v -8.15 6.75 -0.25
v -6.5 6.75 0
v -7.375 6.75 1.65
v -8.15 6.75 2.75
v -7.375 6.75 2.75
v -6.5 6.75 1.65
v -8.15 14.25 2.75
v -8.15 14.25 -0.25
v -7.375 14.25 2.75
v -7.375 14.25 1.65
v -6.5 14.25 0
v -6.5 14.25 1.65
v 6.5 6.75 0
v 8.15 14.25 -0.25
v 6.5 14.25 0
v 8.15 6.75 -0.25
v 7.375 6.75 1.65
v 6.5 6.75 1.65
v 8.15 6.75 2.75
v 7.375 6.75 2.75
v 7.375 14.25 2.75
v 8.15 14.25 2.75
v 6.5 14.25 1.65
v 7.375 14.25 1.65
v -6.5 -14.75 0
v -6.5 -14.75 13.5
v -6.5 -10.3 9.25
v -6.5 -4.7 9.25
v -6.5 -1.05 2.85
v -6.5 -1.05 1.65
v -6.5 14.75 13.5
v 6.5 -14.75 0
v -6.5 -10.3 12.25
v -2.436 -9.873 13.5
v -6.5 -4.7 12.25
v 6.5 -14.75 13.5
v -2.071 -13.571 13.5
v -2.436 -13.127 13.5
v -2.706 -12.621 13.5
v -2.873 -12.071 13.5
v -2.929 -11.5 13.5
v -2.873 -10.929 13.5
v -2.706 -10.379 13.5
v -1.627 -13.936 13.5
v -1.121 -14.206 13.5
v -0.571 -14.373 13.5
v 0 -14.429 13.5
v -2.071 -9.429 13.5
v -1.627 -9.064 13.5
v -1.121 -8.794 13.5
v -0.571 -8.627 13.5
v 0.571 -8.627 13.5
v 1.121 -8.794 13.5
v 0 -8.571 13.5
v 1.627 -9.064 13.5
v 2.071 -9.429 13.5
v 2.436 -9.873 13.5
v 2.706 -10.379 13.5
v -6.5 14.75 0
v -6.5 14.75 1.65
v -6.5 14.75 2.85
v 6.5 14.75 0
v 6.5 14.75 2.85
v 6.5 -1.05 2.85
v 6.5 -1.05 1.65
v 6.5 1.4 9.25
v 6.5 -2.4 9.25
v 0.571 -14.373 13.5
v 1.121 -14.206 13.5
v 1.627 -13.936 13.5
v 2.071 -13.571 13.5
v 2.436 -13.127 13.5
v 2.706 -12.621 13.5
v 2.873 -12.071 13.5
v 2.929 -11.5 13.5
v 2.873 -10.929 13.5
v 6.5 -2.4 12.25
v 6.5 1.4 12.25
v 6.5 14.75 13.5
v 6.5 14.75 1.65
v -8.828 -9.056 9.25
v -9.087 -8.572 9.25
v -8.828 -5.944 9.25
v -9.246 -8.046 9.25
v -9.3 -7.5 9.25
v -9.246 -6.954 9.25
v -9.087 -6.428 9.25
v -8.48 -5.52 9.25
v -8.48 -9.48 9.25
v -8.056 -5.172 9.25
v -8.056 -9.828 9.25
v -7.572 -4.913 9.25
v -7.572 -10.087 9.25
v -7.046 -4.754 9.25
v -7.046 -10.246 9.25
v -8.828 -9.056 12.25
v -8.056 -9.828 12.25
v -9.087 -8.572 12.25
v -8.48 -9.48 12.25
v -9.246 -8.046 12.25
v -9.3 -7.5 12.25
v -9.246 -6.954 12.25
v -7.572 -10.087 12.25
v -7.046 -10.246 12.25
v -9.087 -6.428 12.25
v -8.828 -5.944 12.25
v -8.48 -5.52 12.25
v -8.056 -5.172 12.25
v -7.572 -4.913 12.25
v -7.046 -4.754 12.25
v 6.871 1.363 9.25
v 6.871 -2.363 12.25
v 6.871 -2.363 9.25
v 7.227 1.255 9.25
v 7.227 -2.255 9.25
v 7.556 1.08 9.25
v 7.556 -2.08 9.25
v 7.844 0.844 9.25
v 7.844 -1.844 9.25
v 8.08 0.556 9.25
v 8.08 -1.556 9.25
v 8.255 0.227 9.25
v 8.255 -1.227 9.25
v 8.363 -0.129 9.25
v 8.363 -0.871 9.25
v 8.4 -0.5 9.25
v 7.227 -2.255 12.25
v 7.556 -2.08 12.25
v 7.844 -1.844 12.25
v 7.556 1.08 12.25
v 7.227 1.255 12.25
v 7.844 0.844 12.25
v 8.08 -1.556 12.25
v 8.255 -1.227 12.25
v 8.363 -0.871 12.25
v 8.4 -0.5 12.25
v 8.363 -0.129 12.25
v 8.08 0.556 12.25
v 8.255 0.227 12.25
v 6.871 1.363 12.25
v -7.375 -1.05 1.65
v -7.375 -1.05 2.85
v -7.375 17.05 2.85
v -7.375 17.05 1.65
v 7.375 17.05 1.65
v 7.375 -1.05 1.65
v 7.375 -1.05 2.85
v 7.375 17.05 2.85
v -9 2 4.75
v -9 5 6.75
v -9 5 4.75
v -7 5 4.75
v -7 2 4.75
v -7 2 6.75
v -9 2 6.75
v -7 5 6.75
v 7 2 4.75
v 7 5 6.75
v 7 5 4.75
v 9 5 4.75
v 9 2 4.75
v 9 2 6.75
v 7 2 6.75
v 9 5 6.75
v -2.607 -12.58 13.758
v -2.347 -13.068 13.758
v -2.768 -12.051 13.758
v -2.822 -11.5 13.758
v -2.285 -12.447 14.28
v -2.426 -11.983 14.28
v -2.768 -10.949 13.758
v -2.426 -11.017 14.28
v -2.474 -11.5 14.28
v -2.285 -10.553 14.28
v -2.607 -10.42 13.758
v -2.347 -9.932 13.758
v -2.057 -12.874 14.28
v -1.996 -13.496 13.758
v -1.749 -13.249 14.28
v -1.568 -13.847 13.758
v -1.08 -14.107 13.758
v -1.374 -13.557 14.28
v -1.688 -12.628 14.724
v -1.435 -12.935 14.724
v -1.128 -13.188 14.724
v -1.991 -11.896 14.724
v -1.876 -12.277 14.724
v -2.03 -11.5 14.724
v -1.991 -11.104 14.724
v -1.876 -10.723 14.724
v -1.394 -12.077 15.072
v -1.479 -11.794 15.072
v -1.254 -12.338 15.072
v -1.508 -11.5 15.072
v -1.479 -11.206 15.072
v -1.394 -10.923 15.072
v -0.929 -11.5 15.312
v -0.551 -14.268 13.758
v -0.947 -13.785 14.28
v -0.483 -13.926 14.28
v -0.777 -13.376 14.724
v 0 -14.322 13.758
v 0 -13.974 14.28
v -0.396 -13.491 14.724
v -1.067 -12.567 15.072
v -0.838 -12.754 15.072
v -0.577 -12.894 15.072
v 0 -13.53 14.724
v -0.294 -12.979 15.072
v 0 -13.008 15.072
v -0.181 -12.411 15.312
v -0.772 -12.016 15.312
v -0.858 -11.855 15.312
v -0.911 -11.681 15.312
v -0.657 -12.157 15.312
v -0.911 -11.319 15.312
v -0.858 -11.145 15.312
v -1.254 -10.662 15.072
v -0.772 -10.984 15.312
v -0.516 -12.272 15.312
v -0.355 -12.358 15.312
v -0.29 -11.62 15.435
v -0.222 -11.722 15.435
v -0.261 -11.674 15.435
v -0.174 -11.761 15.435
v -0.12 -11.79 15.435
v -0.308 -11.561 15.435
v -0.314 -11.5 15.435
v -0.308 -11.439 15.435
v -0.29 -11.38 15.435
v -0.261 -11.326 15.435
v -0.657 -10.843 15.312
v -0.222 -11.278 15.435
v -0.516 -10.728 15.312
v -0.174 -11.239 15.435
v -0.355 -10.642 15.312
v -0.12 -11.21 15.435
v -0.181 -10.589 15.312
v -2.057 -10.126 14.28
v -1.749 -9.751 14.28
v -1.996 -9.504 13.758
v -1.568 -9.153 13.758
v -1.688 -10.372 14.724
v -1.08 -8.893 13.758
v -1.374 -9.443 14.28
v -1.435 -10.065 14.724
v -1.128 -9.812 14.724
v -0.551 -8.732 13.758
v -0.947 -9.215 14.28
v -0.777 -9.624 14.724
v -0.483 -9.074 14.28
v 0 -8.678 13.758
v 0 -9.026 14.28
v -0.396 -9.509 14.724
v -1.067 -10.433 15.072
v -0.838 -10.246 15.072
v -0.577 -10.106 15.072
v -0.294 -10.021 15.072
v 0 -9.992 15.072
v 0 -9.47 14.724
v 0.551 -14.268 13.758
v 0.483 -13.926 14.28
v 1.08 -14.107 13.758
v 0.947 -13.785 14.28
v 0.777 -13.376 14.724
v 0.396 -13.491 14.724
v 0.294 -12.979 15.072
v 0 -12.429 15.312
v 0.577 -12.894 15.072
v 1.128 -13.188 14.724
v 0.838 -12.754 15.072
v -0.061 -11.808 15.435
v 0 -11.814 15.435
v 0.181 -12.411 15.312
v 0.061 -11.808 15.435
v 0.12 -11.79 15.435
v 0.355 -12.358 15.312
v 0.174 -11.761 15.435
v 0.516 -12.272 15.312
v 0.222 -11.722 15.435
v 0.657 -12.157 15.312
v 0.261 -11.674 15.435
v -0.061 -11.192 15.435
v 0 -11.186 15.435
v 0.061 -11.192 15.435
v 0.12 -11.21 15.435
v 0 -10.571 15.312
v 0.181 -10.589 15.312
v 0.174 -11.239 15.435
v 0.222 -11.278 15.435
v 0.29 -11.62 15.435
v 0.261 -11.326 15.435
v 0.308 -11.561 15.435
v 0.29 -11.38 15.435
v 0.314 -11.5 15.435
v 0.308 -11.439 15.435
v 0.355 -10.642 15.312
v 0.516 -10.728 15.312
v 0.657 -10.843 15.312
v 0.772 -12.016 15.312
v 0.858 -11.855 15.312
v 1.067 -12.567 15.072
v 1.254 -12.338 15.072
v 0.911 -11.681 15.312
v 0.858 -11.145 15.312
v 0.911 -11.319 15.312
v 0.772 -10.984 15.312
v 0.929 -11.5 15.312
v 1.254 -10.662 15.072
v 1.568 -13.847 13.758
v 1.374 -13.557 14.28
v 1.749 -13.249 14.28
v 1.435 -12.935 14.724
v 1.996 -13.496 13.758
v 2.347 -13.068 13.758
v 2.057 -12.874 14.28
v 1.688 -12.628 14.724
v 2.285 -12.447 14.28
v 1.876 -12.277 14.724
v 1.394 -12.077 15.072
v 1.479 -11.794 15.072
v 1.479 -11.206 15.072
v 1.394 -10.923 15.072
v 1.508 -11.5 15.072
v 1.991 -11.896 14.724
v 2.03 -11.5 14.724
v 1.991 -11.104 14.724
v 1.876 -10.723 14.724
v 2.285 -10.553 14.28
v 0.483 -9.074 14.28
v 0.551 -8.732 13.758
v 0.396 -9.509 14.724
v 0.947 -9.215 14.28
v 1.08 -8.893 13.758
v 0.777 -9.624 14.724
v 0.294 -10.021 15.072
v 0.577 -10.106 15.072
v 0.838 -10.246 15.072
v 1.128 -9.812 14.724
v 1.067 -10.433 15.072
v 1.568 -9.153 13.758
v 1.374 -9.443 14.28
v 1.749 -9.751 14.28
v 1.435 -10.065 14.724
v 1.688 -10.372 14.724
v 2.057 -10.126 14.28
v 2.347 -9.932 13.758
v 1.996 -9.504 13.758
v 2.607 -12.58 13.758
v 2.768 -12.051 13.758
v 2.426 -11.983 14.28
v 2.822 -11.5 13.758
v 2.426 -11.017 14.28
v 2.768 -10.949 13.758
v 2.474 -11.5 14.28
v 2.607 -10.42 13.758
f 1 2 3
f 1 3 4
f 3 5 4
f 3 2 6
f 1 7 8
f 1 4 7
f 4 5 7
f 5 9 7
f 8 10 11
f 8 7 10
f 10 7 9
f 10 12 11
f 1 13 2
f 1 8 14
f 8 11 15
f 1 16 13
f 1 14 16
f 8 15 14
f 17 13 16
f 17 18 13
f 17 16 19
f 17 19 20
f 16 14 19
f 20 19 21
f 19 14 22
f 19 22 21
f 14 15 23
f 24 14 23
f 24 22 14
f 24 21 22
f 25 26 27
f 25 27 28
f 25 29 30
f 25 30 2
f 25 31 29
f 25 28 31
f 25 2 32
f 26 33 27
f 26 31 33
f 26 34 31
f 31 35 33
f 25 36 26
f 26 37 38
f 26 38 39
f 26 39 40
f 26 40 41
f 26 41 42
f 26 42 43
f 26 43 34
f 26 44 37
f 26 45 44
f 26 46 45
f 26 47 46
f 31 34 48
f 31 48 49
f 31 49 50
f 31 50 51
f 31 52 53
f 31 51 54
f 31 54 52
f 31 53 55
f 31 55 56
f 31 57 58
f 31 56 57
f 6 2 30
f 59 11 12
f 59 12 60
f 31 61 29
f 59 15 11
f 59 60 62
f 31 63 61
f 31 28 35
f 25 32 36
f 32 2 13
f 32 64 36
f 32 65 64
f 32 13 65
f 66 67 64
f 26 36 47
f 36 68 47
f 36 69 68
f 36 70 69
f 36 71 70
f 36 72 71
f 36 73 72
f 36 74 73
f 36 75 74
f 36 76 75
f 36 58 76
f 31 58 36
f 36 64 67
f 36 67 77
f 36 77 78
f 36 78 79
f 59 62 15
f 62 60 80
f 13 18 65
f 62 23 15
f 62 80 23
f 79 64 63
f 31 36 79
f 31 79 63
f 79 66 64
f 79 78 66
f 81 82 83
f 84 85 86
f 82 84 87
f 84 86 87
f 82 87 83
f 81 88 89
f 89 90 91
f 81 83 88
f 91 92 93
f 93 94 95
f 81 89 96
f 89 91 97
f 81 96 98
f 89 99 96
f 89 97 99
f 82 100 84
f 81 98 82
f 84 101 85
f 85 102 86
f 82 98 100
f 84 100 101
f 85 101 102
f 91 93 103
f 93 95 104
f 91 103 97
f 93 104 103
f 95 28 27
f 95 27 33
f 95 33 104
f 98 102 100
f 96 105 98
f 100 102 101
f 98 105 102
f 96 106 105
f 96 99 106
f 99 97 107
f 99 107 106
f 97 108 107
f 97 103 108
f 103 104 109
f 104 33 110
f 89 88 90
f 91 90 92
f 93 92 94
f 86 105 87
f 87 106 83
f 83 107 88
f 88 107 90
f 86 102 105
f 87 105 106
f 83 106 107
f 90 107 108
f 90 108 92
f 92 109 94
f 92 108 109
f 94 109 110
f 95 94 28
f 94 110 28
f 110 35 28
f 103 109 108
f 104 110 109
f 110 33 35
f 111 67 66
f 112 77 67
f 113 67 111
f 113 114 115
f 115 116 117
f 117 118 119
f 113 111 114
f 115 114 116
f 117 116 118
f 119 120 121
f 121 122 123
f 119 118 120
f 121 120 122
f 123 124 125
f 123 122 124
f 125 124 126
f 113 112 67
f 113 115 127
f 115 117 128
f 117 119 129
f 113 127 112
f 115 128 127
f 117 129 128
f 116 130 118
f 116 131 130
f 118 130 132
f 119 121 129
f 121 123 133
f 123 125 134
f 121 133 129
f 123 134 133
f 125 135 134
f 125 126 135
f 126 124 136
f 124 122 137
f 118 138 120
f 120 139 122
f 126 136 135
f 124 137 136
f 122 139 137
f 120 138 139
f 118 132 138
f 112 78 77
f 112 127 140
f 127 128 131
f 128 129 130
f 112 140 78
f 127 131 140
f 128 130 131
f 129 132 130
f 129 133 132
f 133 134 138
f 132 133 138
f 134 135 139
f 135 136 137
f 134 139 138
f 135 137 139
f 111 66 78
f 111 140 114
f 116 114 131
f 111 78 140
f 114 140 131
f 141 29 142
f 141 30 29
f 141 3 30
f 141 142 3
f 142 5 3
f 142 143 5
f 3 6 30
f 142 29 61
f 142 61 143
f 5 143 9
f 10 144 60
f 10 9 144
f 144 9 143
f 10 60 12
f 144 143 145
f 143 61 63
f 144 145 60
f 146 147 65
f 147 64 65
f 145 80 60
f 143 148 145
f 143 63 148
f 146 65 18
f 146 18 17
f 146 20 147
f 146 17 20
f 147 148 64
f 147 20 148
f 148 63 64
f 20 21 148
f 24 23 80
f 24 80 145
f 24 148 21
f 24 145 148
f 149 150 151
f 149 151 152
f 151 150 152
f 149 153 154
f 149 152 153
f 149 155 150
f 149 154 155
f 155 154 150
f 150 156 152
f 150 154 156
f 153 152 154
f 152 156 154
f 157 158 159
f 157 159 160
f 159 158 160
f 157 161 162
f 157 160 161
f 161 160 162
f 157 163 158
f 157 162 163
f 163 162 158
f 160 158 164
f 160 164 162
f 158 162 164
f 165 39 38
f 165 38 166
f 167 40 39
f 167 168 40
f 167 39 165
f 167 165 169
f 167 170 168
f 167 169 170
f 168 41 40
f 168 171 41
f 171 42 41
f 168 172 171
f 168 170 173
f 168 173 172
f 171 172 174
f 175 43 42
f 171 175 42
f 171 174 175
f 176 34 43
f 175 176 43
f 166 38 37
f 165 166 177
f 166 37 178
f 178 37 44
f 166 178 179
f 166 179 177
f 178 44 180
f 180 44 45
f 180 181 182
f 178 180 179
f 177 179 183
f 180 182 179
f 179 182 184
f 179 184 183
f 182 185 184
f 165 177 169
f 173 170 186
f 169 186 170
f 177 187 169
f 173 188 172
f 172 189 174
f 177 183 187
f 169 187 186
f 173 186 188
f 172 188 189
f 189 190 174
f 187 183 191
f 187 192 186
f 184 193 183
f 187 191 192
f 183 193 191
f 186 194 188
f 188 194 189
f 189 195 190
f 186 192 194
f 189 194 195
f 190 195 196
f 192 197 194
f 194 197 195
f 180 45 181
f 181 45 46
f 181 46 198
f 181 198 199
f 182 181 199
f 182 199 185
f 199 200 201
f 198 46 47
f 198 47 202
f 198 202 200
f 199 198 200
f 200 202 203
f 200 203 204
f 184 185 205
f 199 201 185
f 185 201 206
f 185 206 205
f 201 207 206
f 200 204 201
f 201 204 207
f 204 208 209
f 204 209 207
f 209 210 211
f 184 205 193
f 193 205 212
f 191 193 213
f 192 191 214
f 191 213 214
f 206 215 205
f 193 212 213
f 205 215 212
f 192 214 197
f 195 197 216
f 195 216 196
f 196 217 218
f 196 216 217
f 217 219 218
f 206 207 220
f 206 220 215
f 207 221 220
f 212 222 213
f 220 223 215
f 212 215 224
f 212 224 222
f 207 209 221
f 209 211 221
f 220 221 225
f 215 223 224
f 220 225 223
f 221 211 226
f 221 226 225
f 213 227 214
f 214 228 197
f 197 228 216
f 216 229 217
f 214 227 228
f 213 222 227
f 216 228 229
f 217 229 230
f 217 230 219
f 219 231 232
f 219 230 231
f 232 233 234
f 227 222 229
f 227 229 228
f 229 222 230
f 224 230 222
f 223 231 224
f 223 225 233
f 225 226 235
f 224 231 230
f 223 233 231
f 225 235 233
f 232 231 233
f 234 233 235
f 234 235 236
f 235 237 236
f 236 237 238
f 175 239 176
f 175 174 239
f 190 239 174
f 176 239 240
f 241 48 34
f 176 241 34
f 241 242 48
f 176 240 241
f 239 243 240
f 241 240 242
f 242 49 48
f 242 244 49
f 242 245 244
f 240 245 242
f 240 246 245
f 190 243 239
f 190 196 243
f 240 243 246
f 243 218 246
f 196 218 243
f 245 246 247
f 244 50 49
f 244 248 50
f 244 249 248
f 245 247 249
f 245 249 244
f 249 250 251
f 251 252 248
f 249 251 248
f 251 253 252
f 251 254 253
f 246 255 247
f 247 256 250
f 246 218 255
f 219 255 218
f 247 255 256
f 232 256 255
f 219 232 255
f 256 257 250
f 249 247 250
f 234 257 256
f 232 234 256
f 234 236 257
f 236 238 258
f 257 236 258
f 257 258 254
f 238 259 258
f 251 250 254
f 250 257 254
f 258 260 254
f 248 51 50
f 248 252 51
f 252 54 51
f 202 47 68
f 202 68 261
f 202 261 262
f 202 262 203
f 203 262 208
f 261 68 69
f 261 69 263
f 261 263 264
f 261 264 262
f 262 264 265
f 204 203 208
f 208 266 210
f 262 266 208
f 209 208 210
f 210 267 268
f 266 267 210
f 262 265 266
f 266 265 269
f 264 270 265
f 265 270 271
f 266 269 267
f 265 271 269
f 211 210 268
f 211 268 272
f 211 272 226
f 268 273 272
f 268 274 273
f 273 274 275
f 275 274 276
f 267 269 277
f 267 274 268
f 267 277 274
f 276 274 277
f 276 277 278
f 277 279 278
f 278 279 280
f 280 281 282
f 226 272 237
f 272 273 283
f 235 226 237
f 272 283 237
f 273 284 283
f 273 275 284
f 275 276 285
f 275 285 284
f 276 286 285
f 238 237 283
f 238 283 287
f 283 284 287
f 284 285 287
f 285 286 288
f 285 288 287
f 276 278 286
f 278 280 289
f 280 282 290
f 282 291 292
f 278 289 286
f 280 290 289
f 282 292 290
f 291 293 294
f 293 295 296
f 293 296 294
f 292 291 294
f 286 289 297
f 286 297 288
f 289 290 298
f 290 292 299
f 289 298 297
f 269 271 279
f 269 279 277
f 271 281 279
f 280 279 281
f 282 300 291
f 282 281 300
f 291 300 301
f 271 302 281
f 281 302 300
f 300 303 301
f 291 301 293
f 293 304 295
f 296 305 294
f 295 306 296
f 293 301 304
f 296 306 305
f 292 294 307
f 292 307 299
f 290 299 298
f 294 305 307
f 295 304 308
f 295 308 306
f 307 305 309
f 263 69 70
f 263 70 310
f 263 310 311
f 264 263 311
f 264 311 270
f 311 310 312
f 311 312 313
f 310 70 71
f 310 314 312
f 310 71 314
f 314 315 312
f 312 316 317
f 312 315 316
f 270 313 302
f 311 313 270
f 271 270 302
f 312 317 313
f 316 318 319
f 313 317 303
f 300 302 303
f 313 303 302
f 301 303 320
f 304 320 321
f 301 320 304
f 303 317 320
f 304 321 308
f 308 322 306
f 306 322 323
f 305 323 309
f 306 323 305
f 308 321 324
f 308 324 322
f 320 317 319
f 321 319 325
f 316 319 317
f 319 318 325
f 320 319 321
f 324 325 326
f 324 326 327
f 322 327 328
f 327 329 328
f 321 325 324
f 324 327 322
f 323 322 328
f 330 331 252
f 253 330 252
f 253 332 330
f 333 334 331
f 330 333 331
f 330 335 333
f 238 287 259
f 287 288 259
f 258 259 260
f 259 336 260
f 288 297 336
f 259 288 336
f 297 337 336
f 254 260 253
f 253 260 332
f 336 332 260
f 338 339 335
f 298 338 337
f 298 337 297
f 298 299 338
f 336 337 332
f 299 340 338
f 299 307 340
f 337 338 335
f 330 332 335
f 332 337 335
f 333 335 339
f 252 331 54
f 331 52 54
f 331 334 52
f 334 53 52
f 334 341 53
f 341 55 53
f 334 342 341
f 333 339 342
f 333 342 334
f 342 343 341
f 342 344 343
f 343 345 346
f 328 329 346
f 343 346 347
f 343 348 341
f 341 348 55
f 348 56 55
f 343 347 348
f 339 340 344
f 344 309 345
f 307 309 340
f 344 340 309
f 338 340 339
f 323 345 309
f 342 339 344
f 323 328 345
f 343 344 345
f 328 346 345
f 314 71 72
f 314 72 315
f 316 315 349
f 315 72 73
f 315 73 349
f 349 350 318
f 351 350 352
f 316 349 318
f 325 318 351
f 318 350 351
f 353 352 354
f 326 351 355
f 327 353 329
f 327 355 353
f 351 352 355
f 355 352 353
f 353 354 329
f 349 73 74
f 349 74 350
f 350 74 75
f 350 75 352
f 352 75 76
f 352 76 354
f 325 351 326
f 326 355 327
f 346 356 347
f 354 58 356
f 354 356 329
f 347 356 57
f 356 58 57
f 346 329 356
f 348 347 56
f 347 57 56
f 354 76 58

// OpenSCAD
// Sharp GP2Y0A21YK0F Distance Measuring Sensor
// Unit: mm
// Origin at center of device, -Z direction is mounting side (PWB/Connector)

module gp2y0a21yk0f() {
    // Main body dimensions
    body_length = 29.5;  // Total length
    body_width = 13;     // Total width
    body_height = 13.5;  // Total height
    
    // Position so mounting side is at -Z
    translate([0, 0, body_height/2]) {
        
        // Main case body
        cube([body_width, body_length, body_height], center=true);
        
        // Light emitter (left side)
        translate([-6.5, -7.5, 4]) {
            cylinder(h=3, r=2.8, center=true, $fn=32);
        }
        
        // Light detector (right side, center)
        translate([6.5, -0.5, 4]) {
            cylinder(h=3, r=1.9, center=true, $fn=32);
        }
        
        // Lens case (center front)
        translate([0, -7.5, 4.5]) {
            cylinder(h=4, r=3.8, center=true, $fn=32);
        }
        
        // Connector back (mounting side)
        translate([0, 10.5, -5.5]) {
            // Main connector body
            cube([16.3, 7.5, 3], center=true);
            
            // Connector pins area
            translate([0, -2, 0]) {
                cube([4.15, 2, 2.5], center=true);
            }
        }
        
        // PWB (circuit board)
        translate([0, 8, -4.5]) {
            cube([14.75, 18.1, 1.2], center=true);
        }
        
        // Mounting tabs/stamps
        translate([-8, 3.5, -1]) {
            cube([2, 3, 2], center=true);
        }
        translate([8, 3.5, -1]) {
            cube([2, 3, 2], center=true);
        }
        
        // Lens acrylic (front optical window)
        translate([0, -11.5, 5.5]) {
            sphere(r=3.2, $fn=32);
        }
    }
}

// Render the sensor
gp2y0a21yk0f();

// Optional: Add reference coordinate system
%translate([0, 0, 0]) {
    cylinder(h=20, r=0.5, center=true, $fn=16); // Z axis
}
